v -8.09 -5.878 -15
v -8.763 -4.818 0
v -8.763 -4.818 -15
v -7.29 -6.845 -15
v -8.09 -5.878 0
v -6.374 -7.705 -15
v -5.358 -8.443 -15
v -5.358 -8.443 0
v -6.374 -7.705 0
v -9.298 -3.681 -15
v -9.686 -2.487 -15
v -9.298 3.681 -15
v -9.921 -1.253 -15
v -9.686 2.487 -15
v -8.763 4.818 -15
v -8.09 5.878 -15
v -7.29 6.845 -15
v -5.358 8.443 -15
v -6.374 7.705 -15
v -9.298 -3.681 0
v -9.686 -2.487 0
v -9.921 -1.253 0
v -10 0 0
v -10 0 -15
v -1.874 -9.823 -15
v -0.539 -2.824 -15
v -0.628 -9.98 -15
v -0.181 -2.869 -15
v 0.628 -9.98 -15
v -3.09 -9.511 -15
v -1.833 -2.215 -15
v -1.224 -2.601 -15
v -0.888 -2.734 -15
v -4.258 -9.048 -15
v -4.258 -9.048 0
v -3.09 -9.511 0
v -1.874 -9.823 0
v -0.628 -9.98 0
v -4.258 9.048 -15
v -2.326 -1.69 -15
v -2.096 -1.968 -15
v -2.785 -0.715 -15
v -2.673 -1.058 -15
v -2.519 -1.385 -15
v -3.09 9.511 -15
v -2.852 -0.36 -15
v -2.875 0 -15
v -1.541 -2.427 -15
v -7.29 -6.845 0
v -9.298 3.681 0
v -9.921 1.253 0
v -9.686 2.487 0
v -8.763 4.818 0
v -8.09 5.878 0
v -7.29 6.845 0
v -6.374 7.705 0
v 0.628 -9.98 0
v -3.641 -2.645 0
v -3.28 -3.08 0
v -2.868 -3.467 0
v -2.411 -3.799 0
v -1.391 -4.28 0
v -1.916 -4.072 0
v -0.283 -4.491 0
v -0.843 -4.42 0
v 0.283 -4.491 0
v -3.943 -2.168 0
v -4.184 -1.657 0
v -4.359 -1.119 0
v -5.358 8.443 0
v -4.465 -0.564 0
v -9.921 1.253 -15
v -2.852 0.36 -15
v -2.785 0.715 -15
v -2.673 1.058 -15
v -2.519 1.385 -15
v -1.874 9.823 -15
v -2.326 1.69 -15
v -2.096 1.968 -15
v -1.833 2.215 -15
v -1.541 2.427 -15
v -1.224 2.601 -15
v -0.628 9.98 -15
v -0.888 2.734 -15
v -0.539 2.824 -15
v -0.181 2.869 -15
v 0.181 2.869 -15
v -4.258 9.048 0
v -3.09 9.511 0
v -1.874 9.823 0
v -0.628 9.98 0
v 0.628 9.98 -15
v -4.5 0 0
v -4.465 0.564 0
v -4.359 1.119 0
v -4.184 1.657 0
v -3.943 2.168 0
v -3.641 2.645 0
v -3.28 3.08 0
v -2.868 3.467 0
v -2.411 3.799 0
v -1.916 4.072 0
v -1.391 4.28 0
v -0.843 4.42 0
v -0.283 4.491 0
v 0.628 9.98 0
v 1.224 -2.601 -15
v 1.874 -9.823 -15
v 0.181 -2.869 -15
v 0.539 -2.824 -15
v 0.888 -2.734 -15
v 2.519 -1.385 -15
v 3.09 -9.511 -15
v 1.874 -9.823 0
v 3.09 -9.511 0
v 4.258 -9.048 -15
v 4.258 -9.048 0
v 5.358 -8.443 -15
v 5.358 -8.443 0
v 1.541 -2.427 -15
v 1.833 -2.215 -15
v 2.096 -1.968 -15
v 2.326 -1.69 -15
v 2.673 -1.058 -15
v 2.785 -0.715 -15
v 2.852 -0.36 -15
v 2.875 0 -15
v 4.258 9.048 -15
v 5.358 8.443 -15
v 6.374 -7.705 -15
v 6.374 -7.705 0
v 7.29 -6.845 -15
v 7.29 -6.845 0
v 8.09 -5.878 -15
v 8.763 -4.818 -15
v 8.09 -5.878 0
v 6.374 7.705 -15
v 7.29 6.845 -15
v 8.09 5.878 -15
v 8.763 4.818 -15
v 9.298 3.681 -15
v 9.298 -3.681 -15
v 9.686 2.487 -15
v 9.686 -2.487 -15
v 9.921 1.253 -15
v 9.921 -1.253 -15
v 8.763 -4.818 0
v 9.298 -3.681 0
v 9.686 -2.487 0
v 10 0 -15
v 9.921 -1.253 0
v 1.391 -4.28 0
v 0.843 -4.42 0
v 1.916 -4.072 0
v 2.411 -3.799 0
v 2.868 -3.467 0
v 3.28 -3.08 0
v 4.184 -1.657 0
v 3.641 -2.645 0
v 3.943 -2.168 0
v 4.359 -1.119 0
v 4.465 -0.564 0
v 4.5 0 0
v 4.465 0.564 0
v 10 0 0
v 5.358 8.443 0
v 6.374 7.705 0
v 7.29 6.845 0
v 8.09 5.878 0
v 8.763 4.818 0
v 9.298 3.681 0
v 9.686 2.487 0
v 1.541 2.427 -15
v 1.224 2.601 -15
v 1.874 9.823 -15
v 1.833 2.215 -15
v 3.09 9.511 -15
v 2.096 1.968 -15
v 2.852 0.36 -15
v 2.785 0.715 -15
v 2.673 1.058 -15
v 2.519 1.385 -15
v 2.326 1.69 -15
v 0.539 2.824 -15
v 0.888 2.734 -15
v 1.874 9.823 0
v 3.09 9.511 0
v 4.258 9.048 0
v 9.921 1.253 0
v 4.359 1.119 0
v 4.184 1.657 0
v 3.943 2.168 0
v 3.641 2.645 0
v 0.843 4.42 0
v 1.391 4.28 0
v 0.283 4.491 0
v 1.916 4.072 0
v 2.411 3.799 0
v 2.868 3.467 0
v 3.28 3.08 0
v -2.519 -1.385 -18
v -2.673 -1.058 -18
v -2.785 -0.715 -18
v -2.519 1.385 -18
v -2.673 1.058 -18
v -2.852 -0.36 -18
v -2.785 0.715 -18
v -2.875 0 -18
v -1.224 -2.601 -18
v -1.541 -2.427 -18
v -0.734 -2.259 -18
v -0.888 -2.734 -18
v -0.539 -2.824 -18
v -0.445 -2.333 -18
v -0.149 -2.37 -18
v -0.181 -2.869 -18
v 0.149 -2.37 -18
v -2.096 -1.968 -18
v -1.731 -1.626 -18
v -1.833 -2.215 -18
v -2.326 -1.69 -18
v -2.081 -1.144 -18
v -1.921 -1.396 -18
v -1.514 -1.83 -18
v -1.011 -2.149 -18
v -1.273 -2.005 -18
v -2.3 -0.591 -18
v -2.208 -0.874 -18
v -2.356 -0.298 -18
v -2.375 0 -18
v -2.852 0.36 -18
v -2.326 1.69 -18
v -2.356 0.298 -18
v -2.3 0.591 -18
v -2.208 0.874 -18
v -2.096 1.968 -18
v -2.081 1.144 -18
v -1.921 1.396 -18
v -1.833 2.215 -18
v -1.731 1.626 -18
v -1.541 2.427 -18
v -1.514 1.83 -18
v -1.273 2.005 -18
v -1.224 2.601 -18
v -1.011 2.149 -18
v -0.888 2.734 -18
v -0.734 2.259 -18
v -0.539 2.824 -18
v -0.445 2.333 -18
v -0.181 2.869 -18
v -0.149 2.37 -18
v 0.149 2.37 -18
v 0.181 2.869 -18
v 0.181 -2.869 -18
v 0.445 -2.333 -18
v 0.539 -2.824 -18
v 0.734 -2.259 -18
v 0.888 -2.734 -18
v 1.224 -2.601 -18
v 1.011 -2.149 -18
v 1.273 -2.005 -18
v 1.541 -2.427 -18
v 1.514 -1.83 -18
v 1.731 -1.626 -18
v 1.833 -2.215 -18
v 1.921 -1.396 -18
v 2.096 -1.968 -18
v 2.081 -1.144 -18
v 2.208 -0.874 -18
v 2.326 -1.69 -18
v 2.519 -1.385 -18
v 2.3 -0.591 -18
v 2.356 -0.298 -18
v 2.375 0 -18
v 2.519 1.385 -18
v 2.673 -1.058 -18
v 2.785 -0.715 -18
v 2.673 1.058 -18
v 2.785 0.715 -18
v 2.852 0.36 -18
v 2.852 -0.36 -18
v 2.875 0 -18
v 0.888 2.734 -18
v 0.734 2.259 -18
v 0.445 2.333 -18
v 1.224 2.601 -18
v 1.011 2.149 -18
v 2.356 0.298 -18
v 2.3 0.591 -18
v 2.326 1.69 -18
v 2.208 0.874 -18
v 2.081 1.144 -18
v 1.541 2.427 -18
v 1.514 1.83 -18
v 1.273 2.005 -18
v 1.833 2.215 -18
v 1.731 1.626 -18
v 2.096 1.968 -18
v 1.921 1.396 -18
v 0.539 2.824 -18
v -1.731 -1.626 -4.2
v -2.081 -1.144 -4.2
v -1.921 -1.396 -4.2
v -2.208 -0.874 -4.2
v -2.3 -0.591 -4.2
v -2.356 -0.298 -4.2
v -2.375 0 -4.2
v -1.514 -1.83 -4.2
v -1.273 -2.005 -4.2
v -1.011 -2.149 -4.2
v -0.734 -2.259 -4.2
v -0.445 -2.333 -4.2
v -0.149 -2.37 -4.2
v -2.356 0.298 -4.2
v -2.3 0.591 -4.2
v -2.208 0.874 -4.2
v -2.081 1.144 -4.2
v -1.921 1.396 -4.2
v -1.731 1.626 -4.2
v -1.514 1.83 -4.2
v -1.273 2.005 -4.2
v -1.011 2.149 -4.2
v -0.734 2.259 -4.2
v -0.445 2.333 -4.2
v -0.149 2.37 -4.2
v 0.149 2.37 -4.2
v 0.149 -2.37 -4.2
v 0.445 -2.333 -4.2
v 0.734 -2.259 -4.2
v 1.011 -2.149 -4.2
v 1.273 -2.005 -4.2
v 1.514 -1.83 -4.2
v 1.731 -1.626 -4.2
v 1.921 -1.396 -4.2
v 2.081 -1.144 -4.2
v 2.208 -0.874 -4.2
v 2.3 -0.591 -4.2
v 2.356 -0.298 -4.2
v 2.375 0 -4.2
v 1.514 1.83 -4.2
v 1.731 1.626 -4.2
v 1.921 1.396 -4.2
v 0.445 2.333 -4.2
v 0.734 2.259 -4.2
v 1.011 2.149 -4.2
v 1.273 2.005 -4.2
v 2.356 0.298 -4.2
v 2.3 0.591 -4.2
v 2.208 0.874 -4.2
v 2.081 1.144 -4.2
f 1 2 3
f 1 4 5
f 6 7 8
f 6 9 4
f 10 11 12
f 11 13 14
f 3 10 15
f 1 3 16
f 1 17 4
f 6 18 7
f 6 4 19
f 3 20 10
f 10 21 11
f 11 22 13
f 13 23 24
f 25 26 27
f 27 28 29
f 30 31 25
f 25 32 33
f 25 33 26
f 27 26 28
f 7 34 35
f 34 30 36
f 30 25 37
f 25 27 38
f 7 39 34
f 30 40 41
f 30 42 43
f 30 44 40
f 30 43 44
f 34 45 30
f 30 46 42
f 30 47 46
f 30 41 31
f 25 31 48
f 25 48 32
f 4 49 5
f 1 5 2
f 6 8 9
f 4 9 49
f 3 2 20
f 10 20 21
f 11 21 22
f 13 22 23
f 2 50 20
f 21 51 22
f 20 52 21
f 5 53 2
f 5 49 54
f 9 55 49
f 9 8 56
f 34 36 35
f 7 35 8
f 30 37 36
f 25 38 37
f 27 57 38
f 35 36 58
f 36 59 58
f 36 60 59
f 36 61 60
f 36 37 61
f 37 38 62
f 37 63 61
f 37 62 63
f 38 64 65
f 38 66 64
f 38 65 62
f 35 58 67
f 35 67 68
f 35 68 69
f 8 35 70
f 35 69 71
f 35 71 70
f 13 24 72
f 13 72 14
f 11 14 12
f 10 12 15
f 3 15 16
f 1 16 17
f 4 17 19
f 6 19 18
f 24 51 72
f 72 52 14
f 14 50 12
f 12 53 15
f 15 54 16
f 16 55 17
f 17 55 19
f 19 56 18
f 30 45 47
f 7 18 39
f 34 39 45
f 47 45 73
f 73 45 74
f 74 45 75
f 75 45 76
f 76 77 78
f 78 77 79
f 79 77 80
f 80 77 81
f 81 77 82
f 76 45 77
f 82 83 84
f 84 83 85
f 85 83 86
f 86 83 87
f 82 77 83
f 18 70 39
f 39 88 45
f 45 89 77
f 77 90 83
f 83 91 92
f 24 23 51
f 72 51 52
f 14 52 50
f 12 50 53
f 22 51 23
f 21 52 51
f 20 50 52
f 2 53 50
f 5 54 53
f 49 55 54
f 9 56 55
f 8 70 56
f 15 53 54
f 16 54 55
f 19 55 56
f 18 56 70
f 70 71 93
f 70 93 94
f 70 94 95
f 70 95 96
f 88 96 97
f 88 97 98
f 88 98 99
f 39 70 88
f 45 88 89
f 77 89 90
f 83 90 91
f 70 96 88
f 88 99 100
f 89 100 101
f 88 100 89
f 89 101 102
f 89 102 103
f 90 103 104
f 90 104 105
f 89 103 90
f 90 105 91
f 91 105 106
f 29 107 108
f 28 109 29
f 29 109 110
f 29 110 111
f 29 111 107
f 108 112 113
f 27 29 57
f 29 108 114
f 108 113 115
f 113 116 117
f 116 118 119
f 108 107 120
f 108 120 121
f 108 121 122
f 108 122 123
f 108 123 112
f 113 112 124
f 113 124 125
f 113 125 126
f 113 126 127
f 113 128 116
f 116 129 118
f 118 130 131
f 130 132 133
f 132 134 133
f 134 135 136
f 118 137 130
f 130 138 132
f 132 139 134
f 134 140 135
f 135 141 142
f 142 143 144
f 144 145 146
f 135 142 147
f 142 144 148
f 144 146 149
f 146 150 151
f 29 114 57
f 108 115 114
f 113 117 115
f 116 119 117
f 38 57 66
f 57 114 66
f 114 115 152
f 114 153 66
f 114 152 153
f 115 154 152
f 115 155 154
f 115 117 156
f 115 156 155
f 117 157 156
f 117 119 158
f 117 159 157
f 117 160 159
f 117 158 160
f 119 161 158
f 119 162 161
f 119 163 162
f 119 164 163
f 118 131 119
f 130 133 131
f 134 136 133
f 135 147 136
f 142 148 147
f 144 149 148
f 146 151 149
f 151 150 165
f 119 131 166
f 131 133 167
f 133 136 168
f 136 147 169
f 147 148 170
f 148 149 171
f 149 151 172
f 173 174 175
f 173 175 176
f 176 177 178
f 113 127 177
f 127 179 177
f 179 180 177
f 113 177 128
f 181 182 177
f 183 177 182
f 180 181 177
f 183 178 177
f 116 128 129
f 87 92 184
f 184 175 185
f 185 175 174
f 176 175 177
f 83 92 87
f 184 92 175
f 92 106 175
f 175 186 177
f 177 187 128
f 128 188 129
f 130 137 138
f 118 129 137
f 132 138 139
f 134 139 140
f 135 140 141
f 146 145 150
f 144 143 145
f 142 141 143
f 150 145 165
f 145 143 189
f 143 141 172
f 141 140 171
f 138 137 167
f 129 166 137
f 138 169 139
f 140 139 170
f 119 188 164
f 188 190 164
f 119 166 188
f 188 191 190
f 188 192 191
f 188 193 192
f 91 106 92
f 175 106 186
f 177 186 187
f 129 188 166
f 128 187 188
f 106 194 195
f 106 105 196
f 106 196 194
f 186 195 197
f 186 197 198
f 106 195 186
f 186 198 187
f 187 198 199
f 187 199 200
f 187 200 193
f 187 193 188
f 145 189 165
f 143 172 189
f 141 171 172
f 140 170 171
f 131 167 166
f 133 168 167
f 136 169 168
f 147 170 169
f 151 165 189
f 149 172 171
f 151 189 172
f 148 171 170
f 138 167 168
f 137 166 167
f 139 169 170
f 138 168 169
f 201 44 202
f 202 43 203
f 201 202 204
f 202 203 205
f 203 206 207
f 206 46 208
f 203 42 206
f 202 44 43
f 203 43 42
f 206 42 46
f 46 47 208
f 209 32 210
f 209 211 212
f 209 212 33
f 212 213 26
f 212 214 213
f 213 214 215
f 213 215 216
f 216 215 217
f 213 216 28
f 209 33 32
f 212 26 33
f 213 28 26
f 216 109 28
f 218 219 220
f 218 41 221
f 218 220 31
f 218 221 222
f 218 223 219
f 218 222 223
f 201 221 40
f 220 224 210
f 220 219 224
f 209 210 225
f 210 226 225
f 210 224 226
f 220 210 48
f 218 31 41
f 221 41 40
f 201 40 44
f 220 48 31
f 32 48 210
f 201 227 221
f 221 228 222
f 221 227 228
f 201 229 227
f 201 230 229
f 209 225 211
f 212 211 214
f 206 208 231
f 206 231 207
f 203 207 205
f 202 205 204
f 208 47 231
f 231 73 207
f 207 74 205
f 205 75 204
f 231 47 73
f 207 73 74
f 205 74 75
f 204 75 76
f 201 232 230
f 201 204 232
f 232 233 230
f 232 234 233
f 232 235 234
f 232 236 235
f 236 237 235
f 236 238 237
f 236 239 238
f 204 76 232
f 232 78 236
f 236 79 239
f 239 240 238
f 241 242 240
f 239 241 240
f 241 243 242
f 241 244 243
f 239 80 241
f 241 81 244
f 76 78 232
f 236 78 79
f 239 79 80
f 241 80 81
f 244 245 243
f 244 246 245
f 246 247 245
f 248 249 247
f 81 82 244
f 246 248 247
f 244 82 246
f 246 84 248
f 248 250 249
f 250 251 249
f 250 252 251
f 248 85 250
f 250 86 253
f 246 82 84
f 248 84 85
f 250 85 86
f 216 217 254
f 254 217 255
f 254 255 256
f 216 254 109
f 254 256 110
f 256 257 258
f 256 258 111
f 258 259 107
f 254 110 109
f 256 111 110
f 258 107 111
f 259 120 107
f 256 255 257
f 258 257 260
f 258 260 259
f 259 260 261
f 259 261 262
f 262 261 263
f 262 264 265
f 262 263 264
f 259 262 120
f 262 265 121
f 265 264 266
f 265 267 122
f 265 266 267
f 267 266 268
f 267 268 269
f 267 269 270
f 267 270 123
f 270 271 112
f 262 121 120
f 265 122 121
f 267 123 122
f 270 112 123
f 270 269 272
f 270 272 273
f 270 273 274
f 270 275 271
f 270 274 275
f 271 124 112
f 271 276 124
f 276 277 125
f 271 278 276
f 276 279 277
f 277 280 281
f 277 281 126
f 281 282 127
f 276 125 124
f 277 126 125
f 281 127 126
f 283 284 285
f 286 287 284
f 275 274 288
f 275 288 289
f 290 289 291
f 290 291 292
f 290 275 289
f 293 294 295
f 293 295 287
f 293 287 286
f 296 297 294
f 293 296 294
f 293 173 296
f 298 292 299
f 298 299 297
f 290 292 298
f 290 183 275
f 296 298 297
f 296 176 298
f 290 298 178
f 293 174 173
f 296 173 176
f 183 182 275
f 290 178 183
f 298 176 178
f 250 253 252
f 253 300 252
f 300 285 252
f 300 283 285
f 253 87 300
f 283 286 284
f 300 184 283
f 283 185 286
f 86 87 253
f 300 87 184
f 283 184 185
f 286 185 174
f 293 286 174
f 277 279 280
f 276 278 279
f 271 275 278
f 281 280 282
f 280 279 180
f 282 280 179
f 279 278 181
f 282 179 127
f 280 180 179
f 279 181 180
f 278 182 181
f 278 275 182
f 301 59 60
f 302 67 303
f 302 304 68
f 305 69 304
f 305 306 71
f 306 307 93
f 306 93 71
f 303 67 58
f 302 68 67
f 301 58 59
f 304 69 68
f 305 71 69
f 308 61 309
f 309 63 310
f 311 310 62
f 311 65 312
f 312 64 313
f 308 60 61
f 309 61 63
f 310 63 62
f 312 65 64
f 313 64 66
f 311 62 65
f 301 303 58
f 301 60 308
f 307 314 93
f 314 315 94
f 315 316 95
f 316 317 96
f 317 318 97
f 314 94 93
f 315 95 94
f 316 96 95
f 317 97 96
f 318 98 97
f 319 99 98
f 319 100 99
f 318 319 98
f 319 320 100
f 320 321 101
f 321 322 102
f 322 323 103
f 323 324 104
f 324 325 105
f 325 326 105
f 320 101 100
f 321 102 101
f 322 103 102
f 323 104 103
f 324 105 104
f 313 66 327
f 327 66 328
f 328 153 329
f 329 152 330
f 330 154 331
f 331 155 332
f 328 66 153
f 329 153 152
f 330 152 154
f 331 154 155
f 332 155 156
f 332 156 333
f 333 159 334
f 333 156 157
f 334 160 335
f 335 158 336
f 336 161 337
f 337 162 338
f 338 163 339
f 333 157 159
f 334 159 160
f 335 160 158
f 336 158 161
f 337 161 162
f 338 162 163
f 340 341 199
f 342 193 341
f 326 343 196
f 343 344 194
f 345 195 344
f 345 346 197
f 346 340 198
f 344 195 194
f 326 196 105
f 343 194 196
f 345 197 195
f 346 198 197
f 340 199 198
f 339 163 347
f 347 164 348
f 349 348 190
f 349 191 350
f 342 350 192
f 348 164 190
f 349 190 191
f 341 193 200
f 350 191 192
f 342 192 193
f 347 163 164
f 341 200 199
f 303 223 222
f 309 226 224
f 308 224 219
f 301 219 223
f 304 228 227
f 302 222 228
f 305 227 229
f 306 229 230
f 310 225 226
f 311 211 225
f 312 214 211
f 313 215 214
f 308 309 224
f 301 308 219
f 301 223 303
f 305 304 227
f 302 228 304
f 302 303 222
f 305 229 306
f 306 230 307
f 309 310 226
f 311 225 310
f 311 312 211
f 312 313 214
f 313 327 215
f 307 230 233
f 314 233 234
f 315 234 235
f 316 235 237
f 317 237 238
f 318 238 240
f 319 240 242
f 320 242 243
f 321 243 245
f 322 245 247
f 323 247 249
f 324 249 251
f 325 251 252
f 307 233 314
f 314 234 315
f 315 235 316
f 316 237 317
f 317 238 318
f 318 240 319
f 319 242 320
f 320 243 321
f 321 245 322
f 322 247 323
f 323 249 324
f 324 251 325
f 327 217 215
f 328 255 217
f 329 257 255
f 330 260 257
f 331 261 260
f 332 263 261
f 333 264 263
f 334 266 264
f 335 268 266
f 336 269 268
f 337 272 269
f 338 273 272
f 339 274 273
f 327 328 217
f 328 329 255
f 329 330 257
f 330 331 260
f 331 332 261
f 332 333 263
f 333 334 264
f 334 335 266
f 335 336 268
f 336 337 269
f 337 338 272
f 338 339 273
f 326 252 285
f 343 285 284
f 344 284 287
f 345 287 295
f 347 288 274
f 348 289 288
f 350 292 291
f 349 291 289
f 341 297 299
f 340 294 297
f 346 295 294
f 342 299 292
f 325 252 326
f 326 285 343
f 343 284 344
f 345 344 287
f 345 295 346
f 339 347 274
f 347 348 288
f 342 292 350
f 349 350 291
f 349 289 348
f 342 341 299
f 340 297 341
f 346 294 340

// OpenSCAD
$fn = 50;


difference() {
	union() {
		translate(v = [0, 0, -15.0000000000]) {
			cylinder(h = 15, r = 10.0000000000);
		}
		#translate(v = [0, 0, -18.0000000000]) {
			cylinder(h = 18, r = 2.8750000000);
		}
	}
	union() {
		translate(v = [0, 0, 0]) {
			rotate(a = [0, 0, 0]) {
				difference() {
					union() {
						translate(v = [0, 0, -18.0000000000]) {
							cylinder(h = 18, r = 2.2500000000);
						}
						translate(v = [0, 0, -4.2000000000]) {
							cylinder(h = 4.2000000000, r1 = 2.3750000000, r2 = 4.5000000000);
						}
						translate(v = [0, 0, -18.0000000000]) {
							cylinder(h = 18, r = 2.3750000000);
						}
						translate(v = [0, 0, -18.0000000000]) {
							cylinder(h = 18, r = 2.2500000000);
						}
					}
					union();
				}
			}
		}
	}
}
